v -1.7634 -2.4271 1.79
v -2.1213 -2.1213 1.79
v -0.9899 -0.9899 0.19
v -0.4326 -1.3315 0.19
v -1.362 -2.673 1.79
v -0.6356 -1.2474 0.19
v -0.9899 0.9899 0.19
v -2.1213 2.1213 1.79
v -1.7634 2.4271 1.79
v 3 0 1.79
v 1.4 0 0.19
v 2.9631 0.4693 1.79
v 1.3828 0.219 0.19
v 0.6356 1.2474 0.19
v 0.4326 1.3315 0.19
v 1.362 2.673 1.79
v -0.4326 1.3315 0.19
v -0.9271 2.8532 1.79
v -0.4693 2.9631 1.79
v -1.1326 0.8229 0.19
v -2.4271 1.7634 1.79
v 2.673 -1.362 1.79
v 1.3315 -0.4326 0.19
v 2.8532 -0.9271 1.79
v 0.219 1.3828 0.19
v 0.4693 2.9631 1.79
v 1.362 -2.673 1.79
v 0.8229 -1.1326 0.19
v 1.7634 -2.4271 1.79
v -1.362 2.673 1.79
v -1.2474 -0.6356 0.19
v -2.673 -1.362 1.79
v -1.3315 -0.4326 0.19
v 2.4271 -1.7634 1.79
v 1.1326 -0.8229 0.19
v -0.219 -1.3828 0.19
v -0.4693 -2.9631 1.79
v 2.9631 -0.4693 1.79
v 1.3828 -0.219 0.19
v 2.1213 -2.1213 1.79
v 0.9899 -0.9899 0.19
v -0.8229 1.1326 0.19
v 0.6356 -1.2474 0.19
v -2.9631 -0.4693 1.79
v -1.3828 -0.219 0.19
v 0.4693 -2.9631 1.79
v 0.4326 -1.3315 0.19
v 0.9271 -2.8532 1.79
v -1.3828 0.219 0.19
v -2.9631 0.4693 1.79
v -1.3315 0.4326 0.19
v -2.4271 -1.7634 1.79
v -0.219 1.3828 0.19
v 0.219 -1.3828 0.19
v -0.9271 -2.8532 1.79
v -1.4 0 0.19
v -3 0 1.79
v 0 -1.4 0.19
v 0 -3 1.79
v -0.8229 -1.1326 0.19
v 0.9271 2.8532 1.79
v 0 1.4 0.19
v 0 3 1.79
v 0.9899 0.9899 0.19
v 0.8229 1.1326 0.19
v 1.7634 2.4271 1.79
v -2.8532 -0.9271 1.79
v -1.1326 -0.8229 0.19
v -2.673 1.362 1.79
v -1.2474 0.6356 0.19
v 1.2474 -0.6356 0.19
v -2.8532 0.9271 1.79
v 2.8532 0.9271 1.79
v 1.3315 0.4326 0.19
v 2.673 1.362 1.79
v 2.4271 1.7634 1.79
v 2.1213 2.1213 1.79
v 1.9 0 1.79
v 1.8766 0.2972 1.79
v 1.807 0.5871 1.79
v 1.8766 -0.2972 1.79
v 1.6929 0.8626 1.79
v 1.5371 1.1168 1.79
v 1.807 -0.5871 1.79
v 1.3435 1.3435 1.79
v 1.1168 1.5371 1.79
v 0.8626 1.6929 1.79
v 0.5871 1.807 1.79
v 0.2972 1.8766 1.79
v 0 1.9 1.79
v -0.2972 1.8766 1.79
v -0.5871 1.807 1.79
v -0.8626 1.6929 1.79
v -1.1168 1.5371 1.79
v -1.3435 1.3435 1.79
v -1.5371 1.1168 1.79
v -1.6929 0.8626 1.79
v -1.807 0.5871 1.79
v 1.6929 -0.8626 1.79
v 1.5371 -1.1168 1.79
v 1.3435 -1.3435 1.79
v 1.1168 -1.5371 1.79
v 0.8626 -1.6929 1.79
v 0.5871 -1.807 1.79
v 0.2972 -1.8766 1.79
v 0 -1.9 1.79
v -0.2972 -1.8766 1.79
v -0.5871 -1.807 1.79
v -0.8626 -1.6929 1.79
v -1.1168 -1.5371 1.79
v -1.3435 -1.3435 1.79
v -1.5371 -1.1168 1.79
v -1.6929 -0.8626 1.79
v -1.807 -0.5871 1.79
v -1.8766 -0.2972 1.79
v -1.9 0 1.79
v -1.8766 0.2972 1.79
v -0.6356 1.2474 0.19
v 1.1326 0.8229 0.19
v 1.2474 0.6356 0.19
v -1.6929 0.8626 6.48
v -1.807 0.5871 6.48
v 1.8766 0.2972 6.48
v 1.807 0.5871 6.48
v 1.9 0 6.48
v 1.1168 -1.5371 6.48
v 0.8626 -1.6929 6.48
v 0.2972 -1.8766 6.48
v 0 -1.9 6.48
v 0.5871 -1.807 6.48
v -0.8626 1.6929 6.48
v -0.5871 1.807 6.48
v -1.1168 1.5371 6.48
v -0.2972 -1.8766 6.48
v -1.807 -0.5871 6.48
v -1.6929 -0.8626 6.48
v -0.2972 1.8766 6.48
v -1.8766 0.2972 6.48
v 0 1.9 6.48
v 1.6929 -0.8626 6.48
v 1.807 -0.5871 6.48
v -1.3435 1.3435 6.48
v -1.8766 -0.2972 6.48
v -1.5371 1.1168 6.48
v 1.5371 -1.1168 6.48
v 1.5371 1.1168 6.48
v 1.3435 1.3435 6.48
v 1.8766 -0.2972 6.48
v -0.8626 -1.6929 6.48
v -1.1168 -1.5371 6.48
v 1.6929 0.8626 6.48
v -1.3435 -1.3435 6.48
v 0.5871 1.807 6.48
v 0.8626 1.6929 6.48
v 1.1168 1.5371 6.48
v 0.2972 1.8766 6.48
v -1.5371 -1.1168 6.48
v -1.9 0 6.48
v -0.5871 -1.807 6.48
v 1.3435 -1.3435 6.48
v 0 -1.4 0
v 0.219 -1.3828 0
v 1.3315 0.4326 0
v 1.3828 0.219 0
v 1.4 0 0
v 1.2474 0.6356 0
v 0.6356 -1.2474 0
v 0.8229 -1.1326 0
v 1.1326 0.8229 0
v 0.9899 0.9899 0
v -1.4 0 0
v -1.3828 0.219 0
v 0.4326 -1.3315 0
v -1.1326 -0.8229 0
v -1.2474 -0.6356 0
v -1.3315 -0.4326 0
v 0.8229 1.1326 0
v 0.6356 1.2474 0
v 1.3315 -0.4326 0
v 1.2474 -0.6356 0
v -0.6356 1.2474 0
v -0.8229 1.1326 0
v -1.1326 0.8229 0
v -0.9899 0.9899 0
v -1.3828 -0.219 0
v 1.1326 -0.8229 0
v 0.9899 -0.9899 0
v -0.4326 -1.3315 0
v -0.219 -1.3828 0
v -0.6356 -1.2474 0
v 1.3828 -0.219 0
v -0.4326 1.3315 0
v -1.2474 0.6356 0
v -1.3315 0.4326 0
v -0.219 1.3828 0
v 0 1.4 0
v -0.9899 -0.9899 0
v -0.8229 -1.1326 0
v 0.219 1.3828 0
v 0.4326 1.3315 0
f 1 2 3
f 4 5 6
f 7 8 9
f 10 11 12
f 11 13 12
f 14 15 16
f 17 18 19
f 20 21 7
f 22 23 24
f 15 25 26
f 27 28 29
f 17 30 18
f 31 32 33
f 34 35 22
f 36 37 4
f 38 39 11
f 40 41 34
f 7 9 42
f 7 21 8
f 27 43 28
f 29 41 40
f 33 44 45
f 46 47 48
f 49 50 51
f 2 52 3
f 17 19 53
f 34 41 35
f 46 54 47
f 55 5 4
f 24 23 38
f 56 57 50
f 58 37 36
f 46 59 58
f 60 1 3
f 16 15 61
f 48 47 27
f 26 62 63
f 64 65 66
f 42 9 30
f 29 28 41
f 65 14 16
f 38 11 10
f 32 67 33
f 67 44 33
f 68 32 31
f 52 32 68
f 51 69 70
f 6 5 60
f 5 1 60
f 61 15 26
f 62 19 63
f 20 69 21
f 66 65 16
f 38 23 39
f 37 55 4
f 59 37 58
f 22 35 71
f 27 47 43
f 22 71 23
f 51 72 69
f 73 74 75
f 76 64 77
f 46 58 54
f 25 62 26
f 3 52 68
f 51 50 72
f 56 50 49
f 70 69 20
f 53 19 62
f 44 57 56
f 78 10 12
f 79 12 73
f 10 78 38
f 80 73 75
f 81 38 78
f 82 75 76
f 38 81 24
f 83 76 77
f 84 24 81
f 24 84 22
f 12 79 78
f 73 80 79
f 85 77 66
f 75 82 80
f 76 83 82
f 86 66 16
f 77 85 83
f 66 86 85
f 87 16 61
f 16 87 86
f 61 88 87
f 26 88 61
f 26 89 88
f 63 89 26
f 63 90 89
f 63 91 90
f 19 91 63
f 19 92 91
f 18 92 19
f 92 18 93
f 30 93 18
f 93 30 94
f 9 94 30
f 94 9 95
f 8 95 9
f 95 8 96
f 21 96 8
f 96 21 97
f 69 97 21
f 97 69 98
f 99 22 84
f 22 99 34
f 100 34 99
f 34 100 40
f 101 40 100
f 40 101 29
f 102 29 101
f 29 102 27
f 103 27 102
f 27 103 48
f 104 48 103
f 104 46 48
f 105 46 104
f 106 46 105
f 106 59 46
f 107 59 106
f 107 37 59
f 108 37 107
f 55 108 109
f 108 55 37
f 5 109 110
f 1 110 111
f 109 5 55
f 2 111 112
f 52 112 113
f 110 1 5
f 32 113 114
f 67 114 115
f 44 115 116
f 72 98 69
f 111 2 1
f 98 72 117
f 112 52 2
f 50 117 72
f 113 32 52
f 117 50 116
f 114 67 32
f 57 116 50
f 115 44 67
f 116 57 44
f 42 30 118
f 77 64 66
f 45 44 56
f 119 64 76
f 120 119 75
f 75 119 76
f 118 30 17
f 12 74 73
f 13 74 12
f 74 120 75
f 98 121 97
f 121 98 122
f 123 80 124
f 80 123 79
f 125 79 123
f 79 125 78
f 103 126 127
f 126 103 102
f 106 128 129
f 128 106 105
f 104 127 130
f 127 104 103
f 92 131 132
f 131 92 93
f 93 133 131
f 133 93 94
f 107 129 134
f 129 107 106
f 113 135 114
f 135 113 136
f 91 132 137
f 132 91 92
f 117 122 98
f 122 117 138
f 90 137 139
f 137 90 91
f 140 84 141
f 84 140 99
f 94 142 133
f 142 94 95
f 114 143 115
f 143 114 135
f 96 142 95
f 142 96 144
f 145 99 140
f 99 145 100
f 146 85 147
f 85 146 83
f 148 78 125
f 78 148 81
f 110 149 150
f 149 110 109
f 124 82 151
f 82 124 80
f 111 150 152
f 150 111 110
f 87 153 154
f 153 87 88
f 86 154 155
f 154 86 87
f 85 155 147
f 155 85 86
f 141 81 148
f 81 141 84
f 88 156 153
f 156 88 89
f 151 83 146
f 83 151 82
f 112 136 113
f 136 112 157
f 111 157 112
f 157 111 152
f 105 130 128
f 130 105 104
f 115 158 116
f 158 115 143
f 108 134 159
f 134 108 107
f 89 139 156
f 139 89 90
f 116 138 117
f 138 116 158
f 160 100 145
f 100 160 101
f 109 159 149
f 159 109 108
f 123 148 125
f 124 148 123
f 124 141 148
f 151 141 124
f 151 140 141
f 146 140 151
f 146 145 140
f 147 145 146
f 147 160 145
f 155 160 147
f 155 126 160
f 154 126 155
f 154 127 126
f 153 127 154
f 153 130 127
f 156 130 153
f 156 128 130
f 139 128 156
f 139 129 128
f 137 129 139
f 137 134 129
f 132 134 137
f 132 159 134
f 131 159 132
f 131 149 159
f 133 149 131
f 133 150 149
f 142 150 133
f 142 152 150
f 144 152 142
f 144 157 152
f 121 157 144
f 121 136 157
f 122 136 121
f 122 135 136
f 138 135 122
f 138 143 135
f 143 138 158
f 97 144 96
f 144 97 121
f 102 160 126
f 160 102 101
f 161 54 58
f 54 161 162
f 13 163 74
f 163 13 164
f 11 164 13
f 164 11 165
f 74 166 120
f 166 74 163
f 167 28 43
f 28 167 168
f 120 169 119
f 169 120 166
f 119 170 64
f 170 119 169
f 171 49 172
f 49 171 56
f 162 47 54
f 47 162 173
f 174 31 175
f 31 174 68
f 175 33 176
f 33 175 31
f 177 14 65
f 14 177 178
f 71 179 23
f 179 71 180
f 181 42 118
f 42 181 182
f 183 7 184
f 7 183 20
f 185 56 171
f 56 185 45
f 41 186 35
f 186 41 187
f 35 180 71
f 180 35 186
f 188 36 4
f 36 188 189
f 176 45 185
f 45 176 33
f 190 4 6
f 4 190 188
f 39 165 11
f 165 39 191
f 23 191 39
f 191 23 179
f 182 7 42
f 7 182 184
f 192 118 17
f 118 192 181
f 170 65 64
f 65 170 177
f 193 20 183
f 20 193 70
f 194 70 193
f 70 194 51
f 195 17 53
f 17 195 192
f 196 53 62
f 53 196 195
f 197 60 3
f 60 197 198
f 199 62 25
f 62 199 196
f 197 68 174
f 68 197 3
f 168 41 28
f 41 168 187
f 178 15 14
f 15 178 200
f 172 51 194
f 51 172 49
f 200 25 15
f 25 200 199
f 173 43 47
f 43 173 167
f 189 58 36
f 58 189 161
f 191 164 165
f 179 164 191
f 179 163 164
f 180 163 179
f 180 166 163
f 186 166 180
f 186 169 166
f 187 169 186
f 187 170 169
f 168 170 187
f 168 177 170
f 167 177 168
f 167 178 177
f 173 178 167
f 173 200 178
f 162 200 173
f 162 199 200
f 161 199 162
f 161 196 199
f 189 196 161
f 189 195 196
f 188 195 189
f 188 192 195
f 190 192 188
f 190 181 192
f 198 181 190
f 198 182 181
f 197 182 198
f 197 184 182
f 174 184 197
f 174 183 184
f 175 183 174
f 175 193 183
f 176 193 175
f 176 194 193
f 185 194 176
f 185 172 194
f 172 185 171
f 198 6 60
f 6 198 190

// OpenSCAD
/*
Button plunger for or use with the `Final Cartridge III+ Case` project
https://www.thingiverse.com/thing:3680493

Suitable for when short tact switches have been used.
*/

// Smoothness
$fn = 40;

// Arbitrary small value. Used when forcing perfectly abutting planes to overlap
fudge = 0.01;

button_pad_height = 0.2;
button_pad_radius = 1.4;

button_base_height = 1.6;
button_base_radius_bottom = button_pad_radius;
button_base_radius_top = 3;

button_plunger_height = 4.7;
button_plunger_radius = 1.9;

cylinder(h = button_pad_height,    r = button_pad_radius);

translate([0, 0, button_pad_height - fudge]) {
    cylinder(h = button_base_height, r1 = button_base_radius_bottom, r2 = button_base_radius_top);
    translate([0, 0, button_base_height - fudge]) {
        cylinder(h = button_plunger_height, r = button_plunger_radius);
    }
}
